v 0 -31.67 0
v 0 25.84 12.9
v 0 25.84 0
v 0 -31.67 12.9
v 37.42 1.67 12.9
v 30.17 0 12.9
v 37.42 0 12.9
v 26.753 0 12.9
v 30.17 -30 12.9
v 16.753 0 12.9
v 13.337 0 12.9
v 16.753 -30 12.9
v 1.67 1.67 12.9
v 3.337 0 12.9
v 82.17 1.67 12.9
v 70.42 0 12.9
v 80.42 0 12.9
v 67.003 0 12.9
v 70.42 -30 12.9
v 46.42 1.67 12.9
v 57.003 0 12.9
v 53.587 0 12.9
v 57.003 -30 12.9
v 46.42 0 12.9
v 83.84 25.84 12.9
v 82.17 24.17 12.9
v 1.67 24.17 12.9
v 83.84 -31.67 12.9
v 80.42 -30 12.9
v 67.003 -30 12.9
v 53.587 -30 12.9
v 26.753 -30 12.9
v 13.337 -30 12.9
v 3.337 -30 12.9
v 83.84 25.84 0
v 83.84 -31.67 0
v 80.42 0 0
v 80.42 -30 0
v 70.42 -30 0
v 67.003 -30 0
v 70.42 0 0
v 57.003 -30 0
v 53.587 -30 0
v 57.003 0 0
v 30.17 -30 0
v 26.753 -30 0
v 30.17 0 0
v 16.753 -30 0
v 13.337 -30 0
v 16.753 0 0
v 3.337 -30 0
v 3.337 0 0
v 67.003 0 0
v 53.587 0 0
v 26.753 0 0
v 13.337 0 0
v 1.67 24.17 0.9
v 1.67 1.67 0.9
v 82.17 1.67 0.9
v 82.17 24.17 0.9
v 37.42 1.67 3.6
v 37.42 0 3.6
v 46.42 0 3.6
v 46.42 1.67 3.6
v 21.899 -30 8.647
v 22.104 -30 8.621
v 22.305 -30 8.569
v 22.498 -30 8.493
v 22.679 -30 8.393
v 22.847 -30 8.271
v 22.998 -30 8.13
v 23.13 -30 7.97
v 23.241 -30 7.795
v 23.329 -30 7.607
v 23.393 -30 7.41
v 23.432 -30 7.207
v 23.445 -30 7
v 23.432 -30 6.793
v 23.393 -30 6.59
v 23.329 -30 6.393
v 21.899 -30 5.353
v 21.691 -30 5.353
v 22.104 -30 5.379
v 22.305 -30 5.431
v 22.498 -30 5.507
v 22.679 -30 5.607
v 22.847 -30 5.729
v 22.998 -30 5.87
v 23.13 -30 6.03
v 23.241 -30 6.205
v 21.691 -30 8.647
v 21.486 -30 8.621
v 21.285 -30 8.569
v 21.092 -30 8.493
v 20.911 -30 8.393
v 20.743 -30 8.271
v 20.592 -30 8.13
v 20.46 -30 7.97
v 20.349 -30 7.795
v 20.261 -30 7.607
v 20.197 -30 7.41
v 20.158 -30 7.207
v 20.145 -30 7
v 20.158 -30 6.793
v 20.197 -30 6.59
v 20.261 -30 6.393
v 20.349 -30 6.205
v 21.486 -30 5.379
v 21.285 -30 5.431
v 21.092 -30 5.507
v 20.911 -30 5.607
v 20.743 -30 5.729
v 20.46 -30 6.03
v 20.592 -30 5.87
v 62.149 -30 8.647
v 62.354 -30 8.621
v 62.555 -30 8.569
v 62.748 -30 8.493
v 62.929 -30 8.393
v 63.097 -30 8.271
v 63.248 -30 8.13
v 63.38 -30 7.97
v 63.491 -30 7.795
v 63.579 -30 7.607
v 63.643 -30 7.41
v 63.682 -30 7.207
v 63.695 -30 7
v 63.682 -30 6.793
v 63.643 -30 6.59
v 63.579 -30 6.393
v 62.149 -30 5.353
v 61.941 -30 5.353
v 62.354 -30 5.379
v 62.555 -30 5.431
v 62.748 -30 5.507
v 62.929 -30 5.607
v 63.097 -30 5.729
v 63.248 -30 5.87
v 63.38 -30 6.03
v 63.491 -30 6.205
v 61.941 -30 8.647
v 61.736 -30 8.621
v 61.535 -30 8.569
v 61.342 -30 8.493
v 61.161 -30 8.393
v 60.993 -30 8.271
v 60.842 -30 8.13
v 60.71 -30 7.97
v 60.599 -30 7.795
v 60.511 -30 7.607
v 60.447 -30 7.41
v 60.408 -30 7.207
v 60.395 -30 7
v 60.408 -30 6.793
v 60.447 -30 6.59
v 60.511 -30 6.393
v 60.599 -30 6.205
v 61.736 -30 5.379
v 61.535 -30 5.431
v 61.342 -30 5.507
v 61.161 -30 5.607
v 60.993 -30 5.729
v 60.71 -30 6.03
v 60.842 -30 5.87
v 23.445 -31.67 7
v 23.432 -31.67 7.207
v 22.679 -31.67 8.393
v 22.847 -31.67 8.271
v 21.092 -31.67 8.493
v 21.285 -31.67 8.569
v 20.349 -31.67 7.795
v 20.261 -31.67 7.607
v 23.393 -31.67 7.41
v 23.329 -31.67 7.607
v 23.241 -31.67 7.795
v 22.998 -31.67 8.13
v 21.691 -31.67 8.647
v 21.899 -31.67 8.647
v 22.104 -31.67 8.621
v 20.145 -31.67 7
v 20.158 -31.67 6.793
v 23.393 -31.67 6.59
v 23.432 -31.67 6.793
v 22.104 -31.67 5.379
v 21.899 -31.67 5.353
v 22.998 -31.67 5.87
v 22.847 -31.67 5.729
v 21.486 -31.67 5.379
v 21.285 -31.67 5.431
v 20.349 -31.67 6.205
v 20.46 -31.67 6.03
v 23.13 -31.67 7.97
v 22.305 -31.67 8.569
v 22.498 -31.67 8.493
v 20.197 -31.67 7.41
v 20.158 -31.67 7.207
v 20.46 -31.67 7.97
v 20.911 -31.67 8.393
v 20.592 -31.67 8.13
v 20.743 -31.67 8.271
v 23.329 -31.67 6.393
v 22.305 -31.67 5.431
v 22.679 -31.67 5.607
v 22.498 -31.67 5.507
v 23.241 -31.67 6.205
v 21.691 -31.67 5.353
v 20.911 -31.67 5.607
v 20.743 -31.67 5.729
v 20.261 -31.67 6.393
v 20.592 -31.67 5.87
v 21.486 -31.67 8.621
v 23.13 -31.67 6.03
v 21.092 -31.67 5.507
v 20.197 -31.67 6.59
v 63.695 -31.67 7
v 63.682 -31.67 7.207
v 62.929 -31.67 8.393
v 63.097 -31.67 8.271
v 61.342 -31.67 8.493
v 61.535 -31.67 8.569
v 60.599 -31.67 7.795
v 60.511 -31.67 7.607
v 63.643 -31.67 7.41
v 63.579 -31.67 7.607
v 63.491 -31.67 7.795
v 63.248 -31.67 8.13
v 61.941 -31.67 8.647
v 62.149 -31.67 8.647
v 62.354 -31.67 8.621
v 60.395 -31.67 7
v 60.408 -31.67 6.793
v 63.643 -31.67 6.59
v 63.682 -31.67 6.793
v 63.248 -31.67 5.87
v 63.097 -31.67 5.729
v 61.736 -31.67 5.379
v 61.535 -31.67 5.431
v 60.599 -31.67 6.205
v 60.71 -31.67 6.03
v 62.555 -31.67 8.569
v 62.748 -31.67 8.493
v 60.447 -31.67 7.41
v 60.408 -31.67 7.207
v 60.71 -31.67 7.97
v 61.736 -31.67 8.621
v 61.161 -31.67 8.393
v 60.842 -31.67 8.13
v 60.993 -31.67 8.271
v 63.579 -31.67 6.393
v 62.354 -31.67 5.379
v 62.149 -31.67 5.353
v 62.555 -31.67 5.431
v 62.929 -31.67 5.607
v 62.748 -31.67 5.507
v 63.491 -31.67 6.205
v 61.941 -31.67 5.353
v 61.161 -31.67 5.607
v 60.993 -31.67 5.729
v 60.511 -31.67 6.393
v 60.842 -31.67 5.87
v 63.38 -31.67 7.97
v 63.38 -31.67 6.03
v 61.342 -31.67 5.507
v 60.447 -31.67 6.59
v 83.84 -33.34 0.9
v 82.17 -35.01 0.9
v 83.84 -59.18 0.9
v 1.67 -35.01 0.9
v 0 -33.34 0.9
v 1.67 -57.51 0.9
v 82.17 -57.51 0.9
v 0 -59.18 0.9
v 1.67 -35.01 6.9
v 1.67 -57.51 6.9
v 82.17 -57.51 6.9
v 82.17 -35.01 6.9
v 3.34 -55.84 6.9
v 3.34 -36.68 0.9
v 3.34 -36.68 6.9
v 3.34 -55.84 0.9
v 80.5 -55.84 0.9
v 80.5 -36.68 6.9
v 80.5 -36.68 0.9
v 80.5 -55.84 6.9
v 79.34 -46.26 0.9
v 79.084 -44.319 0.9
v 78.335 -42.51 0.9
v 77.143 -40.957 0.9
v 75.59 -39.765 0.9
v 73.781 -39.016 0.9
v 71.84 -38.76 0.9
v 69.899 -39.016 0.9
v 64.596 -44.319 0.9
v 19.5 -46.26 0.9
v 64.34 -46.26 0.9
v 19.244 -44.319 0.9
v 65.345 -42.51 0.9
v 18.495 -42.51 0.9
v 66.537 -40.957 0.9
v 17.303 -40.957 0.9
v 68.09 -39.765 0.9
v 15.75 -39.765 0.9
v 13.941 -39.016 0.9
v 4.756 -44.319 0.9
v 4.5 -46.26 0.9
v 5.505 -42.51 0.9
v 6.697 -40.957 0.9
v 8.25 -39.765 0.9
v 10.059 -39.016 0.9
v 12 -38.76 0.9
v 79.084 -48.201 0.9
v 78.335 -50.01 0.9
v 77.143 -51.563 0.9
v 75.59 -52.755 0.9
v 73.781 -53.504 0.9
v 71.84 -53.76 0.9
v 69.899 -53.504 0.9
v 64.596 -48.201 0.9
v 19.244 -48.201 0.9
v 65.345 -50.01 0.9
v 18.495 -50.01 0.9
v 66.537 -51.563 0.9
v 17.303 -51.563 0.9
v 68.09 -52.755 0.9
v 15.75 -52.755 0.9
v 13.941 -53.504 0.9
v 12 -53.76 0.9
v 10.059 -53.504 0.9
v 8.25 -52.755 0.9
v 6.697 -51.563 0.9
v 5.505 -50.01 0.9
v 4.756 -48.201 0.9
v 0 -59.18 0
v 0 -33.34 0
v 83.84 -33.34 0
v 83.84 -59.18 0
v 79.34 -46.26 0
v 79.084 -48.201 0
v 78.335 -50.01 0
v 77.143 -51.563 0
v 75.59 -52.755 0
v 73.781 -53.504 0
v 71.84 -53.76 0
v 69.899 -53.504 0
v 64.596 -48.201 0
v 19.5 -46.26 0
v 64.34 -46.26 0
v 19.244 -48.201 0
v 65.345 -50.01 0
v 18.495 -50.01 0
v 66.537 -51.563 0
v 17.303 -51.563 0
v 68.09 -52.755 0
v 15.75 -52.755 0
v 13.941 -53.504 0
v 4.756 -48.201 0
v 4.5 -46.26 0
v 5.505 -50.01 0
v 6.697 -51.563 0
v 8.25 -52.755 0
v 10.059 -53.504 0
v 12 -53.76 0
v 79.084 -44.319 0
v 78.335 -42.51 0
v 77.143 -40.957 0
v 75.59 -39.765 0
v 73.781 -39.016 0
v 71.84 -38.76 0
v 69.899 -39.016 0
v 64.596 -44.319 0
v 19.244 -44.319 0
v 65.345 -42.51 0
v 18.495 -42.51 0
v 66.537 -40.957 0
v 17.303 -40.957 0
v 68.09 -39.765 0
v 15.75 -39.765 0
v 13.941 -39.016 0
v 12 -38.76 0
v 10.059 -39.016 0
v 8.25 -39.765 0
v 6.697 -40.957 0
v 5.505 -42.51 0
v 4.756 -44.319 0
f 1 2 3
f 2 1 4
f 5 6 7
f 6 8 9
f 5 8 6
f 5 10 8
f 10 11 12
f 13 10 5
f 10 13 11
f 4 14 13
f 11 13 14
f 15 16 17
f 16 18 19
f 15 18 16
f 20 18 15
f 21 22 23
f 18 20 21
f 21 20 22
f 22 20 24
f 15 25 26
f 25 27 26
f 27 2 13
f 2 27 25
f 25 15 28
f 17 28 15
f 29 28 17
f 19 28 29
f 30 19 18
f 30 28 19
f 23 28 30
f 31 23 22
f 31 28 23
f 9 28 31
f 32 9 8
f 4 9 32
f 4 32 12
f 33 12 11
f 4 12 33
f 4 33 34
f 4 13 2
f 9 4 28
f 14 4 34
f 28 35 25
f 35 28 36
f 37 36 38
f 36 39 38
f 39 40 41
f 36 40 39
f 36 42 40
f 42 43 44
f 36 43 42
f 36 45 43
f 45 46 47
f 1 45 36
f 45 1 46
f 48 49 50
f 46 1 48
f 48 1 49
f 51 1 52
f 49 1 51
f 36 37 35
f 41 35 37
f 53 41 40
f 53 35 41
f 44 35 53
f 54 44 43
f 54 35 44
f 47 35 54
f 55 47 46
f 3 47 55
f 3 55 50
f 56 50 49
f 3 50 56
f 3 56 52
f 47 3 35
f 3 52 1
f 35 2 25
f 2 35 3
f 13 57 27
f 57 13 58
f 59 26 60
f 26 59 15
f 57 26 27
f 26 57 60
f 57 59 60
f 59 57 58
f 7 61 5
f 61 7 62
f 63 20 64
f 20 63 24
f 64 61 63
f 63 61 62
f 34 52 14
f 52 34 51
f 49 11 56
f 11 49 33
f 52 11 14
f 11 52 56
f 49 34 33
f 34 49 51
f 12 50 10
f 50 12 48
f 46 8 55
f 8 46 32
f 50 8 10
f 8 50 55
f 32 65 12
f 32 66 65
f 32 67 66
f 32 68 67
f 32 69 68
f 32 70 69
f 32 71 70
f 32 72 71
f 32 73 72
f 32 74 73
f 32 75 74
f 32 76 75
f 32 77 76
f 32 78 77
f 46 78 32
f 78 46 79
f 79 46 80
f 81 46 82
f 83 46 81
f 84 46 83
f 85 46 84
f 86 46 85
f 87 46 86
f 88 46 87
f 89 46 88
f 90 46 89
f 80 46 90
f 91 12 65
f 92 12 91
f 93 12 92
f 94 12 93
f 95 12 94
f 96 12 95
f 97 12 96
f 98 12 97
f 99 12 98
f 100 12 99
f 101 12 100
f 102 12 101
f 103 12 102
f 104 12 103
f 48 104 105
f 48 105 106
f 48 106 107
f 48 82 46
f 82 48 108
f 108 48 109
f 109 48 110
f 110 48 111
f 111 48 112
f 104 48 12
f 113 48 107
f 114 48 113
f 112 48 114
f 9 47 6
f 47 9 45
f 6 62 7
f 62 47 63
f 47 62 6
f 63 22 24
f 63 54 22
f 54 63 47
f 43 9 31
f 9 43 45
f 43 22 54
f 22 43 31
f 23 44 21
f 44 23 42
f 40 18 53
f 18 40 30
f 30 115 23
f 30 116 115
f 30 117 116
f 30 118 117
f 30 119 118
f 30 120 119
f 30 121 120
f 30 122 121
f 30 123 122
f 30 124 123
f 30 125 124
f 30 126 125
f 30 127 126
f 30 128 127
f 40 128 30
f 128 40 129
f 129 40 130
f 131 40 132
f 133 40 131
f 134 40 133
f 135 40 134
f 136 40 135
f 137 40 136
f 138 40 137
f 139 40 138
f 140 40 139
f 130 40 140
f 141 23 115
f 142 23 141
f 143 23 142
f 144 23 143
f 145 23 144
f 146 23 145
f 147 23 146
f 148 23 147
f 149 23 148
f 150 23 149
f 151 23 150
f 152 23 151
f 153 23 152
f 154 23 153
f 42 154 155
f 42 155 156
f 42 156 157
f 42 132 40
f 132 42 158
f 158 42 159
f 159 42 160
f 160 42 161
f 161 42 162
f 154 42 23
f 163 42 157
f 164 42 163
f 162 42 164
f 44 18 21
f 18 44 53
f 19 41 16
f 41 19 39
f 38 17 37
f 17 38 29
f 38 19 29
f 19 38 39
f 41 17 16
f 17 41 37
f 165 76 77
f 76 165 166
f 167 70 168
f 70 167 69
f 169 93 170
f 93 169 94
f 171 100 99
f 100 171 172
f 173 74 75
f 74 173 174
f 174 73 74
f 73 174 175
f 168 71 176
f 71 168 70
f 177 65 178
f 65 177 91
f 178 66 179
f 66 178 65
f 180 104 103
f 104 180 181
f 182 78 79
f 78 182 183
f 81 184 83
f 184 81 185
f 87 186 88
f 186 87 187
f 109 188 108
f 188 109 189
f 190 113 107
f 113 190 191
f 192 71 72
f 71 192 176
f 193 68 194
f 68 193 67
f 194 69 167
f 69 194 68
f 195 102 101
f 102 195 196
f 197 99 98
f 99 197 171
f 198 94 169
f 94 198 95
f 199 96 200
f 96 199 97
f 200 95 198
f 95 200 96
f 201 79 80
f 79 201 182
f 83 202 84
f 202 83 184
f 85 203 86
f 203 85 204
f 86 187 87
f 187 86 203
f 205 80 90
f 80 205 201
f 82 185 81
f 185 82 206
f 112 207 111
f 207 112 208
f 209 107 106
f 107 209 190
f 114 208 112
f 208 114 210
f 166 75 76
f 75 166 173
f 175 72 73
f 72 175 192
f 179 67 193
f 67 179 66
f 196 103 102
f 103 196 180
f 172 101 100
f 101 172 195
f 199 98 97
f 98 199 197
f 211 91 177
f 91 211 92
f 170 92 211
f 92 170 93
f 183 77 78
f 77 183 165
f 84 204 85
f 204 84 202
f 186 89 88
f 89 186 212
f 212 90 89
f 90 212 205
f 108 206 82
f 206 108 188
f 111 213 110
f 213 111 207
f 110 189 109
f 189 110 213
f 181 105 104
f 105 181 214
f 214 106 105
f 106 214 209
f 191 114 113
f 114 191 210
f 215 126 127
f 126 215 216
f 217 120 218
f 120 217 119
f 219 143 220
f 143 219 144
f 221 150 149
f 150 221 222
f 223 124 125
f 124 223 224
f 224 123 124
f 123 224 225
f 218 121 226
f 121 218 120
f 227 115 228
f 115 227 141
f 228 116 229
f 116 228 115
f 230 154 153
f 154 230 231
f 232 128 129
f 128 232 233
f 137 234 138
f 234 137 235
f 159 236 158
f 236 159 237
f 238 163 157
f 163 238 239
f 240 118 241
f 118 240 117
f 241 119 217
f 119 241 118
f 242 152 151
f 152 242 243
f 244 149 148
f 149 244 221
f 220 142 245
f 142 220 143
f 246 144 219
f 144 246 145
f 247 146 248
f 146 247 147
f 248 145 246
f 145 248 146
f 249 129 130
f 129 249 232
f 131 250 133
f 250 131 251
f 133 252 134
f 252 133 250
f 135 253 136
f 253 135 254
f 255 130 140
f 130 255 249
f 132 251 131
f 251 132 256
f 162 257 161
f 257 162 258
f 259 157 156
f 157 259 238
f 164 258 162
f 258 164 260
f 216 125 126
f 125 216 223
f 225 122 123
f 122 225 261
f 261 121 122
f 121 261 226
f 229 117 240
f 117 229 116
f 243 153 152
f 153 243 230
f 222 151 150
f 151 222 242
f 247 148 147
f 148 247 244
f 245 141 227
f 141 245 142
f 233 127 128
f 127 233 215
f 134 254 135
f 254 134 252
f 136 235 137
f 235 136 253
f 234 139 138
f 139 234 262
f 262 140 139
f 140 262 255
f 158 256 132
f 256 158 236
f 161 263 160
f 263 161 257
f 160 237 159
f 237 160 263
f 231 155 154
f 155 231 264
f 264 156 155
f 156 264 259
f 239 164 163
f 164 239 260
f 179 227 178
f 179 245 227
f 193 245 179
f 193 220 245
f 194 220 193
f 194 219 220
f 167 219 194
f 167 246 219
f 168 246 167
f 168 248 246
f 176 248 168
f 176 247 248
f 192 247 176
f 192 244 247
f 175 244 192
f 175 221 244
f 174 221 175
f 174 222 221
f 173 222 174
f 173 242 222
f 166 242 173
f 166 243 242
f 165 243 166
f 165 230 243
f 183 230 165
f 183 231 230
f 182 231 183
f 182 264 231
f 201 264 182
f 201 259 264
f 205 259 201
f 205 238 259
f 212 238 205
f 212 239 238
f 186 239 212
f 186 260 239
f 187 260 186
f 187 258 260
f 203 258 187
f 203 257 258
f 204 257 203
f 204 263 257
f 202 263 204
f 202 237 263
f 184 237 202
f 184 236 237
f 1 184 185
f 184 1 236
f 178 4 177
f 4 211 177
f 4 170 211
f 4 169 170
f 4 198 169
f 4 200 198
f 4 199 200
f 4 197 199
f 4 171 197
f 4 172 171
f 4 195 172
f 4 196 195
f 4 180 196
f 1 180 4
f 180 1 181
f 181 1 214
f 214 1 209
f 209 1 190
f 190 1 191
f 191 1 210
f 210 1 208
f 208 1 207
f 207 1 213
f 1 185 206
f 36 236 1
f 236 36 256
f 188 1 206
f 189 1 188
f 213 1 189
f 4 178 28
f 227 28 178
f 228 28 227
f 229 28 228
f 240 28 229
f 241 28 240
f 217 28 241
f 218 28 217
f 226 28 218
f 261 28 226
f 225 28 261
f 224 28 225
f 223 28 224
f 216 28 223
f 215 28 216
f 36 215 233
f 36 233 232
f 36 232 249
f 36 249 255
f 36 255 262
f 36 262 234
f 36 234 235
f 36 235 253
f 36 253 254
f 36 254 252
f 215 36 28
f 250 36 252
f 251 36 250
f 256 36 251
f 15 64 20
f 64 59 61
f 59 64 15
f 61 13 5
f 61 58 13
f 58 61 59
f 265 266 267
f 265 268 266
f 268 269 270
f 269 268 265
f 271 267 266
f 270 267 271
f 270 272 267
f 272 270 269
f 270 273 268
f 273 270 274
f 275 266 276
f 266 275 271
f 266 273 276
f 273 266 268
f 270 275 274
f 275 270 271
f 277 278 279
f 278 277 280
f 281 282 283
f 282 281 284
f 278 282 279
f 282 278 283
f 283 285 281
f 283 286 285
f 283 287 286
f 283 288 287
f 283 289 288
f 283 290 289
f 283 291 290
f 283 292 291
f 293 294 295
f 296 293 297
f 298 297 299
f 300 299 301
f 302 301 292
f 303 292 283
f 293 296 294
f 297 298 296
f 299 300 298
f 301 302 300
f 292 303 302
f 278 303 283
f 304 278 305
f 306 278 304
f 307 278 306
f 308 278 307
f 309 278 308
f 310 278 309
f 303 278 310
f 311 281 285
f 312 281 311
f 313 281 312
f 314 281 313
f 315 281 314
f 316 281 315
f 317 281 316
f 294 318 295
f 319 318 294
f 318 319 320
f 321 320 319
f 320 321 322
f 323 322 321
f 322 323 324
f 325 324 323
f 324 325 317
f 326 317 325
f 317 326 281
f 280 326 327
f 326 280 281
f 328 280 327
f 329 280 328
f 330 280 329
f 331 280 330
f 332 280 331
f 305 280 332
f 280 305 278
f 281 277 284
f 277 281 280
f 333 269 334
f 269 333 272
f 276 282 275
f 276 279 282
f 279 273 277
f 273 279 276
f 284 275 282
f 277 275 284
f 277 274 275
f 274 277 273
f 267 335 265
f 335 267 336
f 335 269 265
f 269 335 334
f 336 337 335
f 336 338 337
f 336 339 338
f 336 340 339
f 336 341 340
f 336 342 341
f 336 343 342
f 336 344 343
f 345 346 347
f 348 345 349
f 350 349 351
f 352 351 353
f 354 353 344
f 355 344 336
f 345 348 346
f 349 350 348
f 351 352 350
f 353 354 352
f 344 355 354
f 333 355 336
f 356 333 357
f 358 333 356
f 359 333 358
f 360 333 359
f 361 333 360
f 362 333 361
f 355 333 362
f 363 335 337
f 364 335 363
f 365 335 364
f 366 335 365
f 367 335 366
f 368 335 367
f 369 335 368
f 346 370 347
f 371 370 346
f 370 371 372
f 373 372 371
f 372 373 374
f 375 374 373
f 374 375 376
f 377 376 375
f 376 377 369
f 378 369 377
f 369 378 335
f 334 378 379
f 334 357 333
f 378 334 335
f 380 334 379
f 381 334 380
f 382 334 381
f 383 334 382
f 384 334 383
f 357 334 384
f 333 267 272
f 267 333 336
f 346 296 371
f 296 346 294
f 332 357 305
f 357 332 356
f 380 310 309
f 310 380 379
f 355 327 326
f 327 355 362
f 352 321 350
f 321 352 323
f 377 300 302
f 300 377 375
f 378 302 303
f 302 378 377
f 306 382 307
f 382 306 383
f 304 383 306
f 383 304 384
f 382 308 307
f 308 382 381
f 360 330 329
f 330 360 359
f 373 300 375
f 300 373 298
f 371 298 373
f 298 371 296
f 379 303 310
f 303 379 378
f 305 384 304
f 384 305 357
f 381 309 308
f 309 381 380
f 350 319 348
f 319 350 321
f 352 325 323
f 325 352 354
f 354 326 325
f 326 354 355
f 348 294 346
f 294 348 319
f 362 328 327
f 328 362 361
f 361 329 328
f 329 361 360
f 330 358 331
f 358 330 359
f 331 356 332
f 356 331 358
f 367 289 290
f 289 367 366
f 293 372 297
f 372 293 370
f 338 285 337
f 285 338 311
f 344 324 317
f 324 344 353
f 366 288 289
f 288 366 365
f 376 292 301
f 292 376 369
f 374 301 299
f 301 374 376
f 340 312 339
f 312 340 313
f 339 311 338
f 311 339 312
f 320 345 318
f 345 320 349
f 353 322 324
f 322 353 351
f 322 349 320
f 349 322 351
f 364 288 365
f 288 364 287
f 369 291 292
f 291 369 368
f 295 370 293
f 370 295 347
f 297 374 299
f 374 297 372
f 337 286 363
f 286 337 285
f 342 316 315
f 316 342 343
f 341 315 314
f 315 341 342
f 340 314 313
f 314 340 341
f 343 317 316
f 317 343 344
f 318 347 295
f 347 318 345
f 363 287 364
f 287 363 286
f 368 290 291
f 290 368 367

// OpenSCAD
// file: ../modules/enclosure_box.scad
// ----------------------------------------------------------------------------------
include<printer_limits.scad>
// ----------------------------------------------------------------------------------
function enclosure_close_box_lid_rotate_ang(draw_as_close_box=false) =
  (draw_as_close_box) ?
    ([0, 180, 0])
  : ([0, 0, 0]);
                                                                                   
function enclosure_close_box_lid_translate_xyz(draw_as_close_box=false, length=50, width=40, height=15, xy_wall_width=ptr_wall_width, z_wall_width=z_dim_adj(1), tolerance=ptr_tolerance) =
  (draw_as_close_box) ?
    ([-length-2*xy_wall_width, 0, -2*z_wall_width-height-tolerance])
  : ([0, -width-4*xy_wall_width, 0]);
// ----------------------------------------------------------------------------------
module enclosure_box(
  length=50,
  width=40,
  height=15,
  lid_height=5,
  xy_wall_width=ptr_wall_width,
  z_wall_width=z_dim_adj(1),
  fitted_lid=true,
  draw_lid=false,
  draw_container=false,
  xy_screws=false,
  tolerance=0.0
)
{
  echo("+Enclosure box");
  
  // Bottom
  if(draw_container) {
    difference() {
      cube([length+2*xy_wall_width, width+2*xy_wall_width, height+z_wall_width]);
      union() {
        translate([xy_wall_width, xy_wall_width, z_wall_width])
          cube([length, width, height+z_wall_width]);
          
        if(xy_screws) {
          for(xy = xy_screws[1]) {
            translate([xy[0], xy[1], 0])
              cylinder(h=3*xy_wall_width, d=xy_screws[0], $fn=50, center=true);
          }
        }
      }
    }
  }
  
  // Lid
  if(draw_lid) {
    difference() {
      if(fitted_lid) {
        cube([length+2*xy_wall_width, width+2*xy_wall_width, lid_height+z_wall_width]);
      }
      else {
        translate([-xy_wall_width, -xy_wall_width, 0])
          cube([length+4*xy_wall_width, width+4*xy_wall_width, lid_height+z_wall_width]);
      }
      
      if(fitted_lid) {
        difference() {
          translate([-xy_wall_width, -xy_wall_width, z_wall_width])
            cube([length+4*xy_wall_width, width+4*xy_wall_width, lid_height+2*z_wall_width]);
          translate([xy_wall_width, xy_wall_width, z_wall_width])
            cube([length, width, height+z_wall_width]);
      }
      translate([2*xy_wall_width, 2*xy_wall_width, z_wall_width])
        cube([length-2*xy_wall_width, width-2*xy_wall_width, height+z_wall_width]);
      }
      else {
        translate([0, 0, z_wall_width])
          cube([length+2*xy_wall_width, width+2*xy_wall_width, lid_height+2*z_wall_width]);
      }
    }
  }
}
// ----------------------------------------------------------------------------------
if(false) {
  enclosure_box(draw_container=true);
  rotate(enclosure_close_box_lid_rotate_ang(false))
    translate(enclosure_close_box_lid_translate_xyz(false))
      enclosure_box(draw_lid=true, fitted_lid=true);
}
// ----------------------------------------------------------------------------------
// file: ../modules/printer_limits.scad
// TODO: add function to get match wall_width

first_layer_height = 0.3;
min_layer_height = 0.3;
layer_height = 0.6;

ptr_top_wall_width = 2*layer_height;
ptr_tolerance = min_layer_height/2;

// lines: width (mm)
ptr_2lines = 1.67;
ptr_3lines = 2.44;
ptr_4lines = 3.21;
ptr_5lines = 3.98;
ptr_6lines = 4.76;

ptr_wall_width = ptr_3lines;

min_x = 8;
max_x = 223;
min_y = 2;
max_y = 207;
max_z = 200;

// LxW
max_printable_length = max(max_x-min_x, max_y-min_y);
max_printable_width = min(max_x-min_x, max_y-min_y);

function xy_dim_adj(x) = ceil(x/ptr_wall_width)*ptr_wall_width;
function  z_dim_adj(z) = ceil((z-first_layer_height)/min_layer_height)*min_layer_height + first_layer_height;

// screws diameters with tolerances
xy_screw_3mm_d = 3.2;
z_screw_3mm_d = z_dim_adj(3.3);
// main file
// ----------------------------------------------------------------------------------
// Print settings:
// - Infill: 15% (or less if bridges OK)
// ----------------------------------------------------------------------------------
include<../modules/printer_limits.scad>
use<../modules/enclosure_box.scad>
// ----------------------------------------------------------------------------------
// DIMENSIONS
stereocam_bottom_width = z_dim_adj(0.8);
stereocam_wall_width = ptr_2lines;

stereocam_riser = true;
stereocam_riser_h = z_dim_adj(30);

stereocam_l = 80.5;
stereocam_w = 22.5;
stereocam_h = z_dim_adj(12);
stereocam_board_bt_clearance = z_dim_adj(2.60);
stereocam_lid_h = z_dim_adj(6);

// -> Enable for a high-res printing ONLY
// !!! untested after latest adjustments
stereo_cam_print_posts = false;
_post_height = z_dim_adj(stereocam_board_bt_clearance+2);
_post_diameter = xy_dim_adj(2);
_post_wall_offset = stereocam_wall_width+_post_diameter/2+1;
_post_xy = [
  [                             _post_wall_offset,                              _post_wall_offset],
  [stereocam_l+2*stereocam_wall_width - _post_wall_offset,                              _post_wall_offset],
  [                             _post_wall_offset, stereocam_w+2*stereocam_wall_width - _post_wall_offset],
  [stereocam_l+2*stereocam_wall_width - _post_wall_offset, stereocam_w+2*stereocam_wall_width - _post_wall_offset]
];

// ------------------------------------------
_riser_col_width = 10;
_t_riser_cols = 6;
_x_offset = stereocam_l/_t_riser_cols;
_micro_usb_slot = 9;

// ------------------------------------------
// Screws
_stereocam_screws_offset = 3*stereocam_l/(2*_t_riser_cols);
stereocam_screws_z_offset = z_dim_adj(stereocam_h/2);
stereocam_screws_z = [
    [ stereocam_wall_width+_stereocam_screws_offset, 13],
    [ stereocam_l+stereocam_wall_width-_stereocam_screws_offset, 13],
];

module hbv_1780_2_stereocam_enclosure(
  fitted_lid=true,
  draw_lid=false,
  draw_container=false,
  draw_as_close_box=false
)
{
  echo("----------------------------------------------------------------------------------------------------------------------------------------------------");
  echo("HBV-1780-2 Stereo camera Enclosure");
  if(draw_container || draw_as_close_box ) {
    difference() {
      union() {
        difference() {
          enclosure_box(
              length=stereocam_l, width=stereocam_w, height=stereocam_h, lid_height=stereocam_lid_h,
              xy_wall_width=stereocam_wall_width, z_wall_width=stereocam_bottom_width,
              fitted_lid=fitted_lid, draw_container=true,
              tolerance=ptr_tolerance
            );
          union() {
            // usb hole
            translate([stereocam_l/2-_micro_usb_slot/2+stereocam_wall_width, -stereocam_wall_width, stereocam_bottom_width+stereocam_board_bt_clearance])
              cube([_micro_usb_slot, 3*stereocam_wall_width, stereocam_h+stereocam_bottom_width]);
            
            // lateral screws holes
            if(!stereocam_riser) {
              for(xy = stereocam_screws_z) {
                rotate([90, 0, 0])
                  translate([xy[0], xy[1], -stereocam_w-stereocam_wall_width])
                    cylinder(h=4*stereocam_bottom_width, d=z_screw_3mm_d, $fn=50, center=true);
              }
            }
          }
        }
        // board posts
        if(stereo_cam_print_posts) {
          for(xy = _post_xy) {
            translate([xy[0], xy[1], stereocam_bottom_width])
              cylinder(h=_post_height, d=_post_diameter, $fn=50, center=false);
          }
        }
        // support
        if(stereocam_riser) {
          translate([0, -(stereocam_riser_h+1*stereocam_wall_width), 0])
            difference() {
              cube([stereocam_l+2*stereocam_wall_width, stereocam_riser_h+2*stereocam_wall_width, stereocam_h+stereocam_bottom_width]);
              union() {
                for(x=[0:(_t_riser_cols-1)]) {
                  translate([x*_x_offset+_riser_col_width/_t_riser_cols+stereocam_wall_width, stereocam_wall_width, -stereocam_bottom_width])
                    cube([_riser_col_width, stereocam_riser_h, stereocam_h+3*stereocam_bottom_width]);
                }
                translate([stereocam_l/2-_micro_usb_slot+stereocam_wall_width, stereocam_wall_width, -stereocam_bottom_width])
                  cube([2*_micro_usb_slot, stereocam_riser_h, stereocam_h+3*stereocam_bottom_width]);
                  
                // usb hole
                translate([stereocam_l/2-_micro_usb_slot/2+stereocam_wall_width, stereocam_riser_h, stereocam_bottom_width+stereocam_board_bt_clearance])
                  cube([_micro_usb_slot, 3*stereocam_wall_width, stereocam_h+stereocam_bottom_width]);
                  
                // lateral screws holes
                for(xy = stereocam_screws_z) {
                  rotate([90, 0, 0])
                    translate([xy[0], xy[1]-stereocam_screws_z_offset, 0])
                      cylinder(h=4*stereocam_bottom_width, d=z_screw_3mm_d, $fn=50, center=true);
                }
              }
            }
        }
      }
    }
  }
  if(draw_lid || draw_as_close_box) {
    // Lenses
    lens_d = 15;
    lens_offset_from_wall = 4.5;
    cap_w = (stereocam_riser) ? (stereocam_w+stereocam_riser_h)+stereocam_wall_width : (stereocam_w);
    riser_trans = (stereocam_riser && !draw_as_close_box) ? (stereocam_riser_h) : (0);
    rotate(enclosure_close_box_lid_rotate_ang(draw_as_close_box))
      translate(enclosure_close_box_lid_translate_xyz(draw_as_close_box=draw_as_close_box, length=stereocam_l, width=stereocam_w, height=stereocam_h, xy_wall_width=stereocam_wall_width, z_wall_width=stereocam_board_bt_clearance))
      translate([0, -riser_trans, 0])
        difference() {
          enclosure_box(
              length=stereocam_l, width=stereocam_w, height=stereocam_h, lid_height=stereocam_lid_h,
              xy_wall_width=stereocam_wall_width, z_wall_width=stereocam_bottom_width,
              fitted_lid=fitted_lid, draw_lid=true,
              tolerance=ptr_tolerance
            );
          
          if(stereocam_riser && !fitted_lid) {
            translate([0, 0, stereocam_bottom_width])
              cube([stereocam_l+2*stereocam_wall_width, cap_w+2*stereocam_wall_width, stereocam_lid_h+2*stereocam_bottom_width]);
          }
          
          // Lens holes
          translate([lens_offset_from_wall+lens_d/2, (stereocam_w+2*stereocam_wall_width)/2, -stereocam_bottom_width])
            cylinder(h=4*stereocam_wall_width, d=lens_d);
          translate([stereocam_l+2*stereocam_wall_width-lens_d/2-lens_offset_from_wall, (stereocam_w+2*stereocam_wall_width)/2, -stereocam_bottom_width])
            cylinder(h=4*stereocam_wall_width, d=lens_d);
        }
  }
}

hbv_1780_2_stereocam_enclosure(
  fitted_lid=true,
  draw_lid=true,
  draw_container=true,
  draw_as_close_box=false
);
